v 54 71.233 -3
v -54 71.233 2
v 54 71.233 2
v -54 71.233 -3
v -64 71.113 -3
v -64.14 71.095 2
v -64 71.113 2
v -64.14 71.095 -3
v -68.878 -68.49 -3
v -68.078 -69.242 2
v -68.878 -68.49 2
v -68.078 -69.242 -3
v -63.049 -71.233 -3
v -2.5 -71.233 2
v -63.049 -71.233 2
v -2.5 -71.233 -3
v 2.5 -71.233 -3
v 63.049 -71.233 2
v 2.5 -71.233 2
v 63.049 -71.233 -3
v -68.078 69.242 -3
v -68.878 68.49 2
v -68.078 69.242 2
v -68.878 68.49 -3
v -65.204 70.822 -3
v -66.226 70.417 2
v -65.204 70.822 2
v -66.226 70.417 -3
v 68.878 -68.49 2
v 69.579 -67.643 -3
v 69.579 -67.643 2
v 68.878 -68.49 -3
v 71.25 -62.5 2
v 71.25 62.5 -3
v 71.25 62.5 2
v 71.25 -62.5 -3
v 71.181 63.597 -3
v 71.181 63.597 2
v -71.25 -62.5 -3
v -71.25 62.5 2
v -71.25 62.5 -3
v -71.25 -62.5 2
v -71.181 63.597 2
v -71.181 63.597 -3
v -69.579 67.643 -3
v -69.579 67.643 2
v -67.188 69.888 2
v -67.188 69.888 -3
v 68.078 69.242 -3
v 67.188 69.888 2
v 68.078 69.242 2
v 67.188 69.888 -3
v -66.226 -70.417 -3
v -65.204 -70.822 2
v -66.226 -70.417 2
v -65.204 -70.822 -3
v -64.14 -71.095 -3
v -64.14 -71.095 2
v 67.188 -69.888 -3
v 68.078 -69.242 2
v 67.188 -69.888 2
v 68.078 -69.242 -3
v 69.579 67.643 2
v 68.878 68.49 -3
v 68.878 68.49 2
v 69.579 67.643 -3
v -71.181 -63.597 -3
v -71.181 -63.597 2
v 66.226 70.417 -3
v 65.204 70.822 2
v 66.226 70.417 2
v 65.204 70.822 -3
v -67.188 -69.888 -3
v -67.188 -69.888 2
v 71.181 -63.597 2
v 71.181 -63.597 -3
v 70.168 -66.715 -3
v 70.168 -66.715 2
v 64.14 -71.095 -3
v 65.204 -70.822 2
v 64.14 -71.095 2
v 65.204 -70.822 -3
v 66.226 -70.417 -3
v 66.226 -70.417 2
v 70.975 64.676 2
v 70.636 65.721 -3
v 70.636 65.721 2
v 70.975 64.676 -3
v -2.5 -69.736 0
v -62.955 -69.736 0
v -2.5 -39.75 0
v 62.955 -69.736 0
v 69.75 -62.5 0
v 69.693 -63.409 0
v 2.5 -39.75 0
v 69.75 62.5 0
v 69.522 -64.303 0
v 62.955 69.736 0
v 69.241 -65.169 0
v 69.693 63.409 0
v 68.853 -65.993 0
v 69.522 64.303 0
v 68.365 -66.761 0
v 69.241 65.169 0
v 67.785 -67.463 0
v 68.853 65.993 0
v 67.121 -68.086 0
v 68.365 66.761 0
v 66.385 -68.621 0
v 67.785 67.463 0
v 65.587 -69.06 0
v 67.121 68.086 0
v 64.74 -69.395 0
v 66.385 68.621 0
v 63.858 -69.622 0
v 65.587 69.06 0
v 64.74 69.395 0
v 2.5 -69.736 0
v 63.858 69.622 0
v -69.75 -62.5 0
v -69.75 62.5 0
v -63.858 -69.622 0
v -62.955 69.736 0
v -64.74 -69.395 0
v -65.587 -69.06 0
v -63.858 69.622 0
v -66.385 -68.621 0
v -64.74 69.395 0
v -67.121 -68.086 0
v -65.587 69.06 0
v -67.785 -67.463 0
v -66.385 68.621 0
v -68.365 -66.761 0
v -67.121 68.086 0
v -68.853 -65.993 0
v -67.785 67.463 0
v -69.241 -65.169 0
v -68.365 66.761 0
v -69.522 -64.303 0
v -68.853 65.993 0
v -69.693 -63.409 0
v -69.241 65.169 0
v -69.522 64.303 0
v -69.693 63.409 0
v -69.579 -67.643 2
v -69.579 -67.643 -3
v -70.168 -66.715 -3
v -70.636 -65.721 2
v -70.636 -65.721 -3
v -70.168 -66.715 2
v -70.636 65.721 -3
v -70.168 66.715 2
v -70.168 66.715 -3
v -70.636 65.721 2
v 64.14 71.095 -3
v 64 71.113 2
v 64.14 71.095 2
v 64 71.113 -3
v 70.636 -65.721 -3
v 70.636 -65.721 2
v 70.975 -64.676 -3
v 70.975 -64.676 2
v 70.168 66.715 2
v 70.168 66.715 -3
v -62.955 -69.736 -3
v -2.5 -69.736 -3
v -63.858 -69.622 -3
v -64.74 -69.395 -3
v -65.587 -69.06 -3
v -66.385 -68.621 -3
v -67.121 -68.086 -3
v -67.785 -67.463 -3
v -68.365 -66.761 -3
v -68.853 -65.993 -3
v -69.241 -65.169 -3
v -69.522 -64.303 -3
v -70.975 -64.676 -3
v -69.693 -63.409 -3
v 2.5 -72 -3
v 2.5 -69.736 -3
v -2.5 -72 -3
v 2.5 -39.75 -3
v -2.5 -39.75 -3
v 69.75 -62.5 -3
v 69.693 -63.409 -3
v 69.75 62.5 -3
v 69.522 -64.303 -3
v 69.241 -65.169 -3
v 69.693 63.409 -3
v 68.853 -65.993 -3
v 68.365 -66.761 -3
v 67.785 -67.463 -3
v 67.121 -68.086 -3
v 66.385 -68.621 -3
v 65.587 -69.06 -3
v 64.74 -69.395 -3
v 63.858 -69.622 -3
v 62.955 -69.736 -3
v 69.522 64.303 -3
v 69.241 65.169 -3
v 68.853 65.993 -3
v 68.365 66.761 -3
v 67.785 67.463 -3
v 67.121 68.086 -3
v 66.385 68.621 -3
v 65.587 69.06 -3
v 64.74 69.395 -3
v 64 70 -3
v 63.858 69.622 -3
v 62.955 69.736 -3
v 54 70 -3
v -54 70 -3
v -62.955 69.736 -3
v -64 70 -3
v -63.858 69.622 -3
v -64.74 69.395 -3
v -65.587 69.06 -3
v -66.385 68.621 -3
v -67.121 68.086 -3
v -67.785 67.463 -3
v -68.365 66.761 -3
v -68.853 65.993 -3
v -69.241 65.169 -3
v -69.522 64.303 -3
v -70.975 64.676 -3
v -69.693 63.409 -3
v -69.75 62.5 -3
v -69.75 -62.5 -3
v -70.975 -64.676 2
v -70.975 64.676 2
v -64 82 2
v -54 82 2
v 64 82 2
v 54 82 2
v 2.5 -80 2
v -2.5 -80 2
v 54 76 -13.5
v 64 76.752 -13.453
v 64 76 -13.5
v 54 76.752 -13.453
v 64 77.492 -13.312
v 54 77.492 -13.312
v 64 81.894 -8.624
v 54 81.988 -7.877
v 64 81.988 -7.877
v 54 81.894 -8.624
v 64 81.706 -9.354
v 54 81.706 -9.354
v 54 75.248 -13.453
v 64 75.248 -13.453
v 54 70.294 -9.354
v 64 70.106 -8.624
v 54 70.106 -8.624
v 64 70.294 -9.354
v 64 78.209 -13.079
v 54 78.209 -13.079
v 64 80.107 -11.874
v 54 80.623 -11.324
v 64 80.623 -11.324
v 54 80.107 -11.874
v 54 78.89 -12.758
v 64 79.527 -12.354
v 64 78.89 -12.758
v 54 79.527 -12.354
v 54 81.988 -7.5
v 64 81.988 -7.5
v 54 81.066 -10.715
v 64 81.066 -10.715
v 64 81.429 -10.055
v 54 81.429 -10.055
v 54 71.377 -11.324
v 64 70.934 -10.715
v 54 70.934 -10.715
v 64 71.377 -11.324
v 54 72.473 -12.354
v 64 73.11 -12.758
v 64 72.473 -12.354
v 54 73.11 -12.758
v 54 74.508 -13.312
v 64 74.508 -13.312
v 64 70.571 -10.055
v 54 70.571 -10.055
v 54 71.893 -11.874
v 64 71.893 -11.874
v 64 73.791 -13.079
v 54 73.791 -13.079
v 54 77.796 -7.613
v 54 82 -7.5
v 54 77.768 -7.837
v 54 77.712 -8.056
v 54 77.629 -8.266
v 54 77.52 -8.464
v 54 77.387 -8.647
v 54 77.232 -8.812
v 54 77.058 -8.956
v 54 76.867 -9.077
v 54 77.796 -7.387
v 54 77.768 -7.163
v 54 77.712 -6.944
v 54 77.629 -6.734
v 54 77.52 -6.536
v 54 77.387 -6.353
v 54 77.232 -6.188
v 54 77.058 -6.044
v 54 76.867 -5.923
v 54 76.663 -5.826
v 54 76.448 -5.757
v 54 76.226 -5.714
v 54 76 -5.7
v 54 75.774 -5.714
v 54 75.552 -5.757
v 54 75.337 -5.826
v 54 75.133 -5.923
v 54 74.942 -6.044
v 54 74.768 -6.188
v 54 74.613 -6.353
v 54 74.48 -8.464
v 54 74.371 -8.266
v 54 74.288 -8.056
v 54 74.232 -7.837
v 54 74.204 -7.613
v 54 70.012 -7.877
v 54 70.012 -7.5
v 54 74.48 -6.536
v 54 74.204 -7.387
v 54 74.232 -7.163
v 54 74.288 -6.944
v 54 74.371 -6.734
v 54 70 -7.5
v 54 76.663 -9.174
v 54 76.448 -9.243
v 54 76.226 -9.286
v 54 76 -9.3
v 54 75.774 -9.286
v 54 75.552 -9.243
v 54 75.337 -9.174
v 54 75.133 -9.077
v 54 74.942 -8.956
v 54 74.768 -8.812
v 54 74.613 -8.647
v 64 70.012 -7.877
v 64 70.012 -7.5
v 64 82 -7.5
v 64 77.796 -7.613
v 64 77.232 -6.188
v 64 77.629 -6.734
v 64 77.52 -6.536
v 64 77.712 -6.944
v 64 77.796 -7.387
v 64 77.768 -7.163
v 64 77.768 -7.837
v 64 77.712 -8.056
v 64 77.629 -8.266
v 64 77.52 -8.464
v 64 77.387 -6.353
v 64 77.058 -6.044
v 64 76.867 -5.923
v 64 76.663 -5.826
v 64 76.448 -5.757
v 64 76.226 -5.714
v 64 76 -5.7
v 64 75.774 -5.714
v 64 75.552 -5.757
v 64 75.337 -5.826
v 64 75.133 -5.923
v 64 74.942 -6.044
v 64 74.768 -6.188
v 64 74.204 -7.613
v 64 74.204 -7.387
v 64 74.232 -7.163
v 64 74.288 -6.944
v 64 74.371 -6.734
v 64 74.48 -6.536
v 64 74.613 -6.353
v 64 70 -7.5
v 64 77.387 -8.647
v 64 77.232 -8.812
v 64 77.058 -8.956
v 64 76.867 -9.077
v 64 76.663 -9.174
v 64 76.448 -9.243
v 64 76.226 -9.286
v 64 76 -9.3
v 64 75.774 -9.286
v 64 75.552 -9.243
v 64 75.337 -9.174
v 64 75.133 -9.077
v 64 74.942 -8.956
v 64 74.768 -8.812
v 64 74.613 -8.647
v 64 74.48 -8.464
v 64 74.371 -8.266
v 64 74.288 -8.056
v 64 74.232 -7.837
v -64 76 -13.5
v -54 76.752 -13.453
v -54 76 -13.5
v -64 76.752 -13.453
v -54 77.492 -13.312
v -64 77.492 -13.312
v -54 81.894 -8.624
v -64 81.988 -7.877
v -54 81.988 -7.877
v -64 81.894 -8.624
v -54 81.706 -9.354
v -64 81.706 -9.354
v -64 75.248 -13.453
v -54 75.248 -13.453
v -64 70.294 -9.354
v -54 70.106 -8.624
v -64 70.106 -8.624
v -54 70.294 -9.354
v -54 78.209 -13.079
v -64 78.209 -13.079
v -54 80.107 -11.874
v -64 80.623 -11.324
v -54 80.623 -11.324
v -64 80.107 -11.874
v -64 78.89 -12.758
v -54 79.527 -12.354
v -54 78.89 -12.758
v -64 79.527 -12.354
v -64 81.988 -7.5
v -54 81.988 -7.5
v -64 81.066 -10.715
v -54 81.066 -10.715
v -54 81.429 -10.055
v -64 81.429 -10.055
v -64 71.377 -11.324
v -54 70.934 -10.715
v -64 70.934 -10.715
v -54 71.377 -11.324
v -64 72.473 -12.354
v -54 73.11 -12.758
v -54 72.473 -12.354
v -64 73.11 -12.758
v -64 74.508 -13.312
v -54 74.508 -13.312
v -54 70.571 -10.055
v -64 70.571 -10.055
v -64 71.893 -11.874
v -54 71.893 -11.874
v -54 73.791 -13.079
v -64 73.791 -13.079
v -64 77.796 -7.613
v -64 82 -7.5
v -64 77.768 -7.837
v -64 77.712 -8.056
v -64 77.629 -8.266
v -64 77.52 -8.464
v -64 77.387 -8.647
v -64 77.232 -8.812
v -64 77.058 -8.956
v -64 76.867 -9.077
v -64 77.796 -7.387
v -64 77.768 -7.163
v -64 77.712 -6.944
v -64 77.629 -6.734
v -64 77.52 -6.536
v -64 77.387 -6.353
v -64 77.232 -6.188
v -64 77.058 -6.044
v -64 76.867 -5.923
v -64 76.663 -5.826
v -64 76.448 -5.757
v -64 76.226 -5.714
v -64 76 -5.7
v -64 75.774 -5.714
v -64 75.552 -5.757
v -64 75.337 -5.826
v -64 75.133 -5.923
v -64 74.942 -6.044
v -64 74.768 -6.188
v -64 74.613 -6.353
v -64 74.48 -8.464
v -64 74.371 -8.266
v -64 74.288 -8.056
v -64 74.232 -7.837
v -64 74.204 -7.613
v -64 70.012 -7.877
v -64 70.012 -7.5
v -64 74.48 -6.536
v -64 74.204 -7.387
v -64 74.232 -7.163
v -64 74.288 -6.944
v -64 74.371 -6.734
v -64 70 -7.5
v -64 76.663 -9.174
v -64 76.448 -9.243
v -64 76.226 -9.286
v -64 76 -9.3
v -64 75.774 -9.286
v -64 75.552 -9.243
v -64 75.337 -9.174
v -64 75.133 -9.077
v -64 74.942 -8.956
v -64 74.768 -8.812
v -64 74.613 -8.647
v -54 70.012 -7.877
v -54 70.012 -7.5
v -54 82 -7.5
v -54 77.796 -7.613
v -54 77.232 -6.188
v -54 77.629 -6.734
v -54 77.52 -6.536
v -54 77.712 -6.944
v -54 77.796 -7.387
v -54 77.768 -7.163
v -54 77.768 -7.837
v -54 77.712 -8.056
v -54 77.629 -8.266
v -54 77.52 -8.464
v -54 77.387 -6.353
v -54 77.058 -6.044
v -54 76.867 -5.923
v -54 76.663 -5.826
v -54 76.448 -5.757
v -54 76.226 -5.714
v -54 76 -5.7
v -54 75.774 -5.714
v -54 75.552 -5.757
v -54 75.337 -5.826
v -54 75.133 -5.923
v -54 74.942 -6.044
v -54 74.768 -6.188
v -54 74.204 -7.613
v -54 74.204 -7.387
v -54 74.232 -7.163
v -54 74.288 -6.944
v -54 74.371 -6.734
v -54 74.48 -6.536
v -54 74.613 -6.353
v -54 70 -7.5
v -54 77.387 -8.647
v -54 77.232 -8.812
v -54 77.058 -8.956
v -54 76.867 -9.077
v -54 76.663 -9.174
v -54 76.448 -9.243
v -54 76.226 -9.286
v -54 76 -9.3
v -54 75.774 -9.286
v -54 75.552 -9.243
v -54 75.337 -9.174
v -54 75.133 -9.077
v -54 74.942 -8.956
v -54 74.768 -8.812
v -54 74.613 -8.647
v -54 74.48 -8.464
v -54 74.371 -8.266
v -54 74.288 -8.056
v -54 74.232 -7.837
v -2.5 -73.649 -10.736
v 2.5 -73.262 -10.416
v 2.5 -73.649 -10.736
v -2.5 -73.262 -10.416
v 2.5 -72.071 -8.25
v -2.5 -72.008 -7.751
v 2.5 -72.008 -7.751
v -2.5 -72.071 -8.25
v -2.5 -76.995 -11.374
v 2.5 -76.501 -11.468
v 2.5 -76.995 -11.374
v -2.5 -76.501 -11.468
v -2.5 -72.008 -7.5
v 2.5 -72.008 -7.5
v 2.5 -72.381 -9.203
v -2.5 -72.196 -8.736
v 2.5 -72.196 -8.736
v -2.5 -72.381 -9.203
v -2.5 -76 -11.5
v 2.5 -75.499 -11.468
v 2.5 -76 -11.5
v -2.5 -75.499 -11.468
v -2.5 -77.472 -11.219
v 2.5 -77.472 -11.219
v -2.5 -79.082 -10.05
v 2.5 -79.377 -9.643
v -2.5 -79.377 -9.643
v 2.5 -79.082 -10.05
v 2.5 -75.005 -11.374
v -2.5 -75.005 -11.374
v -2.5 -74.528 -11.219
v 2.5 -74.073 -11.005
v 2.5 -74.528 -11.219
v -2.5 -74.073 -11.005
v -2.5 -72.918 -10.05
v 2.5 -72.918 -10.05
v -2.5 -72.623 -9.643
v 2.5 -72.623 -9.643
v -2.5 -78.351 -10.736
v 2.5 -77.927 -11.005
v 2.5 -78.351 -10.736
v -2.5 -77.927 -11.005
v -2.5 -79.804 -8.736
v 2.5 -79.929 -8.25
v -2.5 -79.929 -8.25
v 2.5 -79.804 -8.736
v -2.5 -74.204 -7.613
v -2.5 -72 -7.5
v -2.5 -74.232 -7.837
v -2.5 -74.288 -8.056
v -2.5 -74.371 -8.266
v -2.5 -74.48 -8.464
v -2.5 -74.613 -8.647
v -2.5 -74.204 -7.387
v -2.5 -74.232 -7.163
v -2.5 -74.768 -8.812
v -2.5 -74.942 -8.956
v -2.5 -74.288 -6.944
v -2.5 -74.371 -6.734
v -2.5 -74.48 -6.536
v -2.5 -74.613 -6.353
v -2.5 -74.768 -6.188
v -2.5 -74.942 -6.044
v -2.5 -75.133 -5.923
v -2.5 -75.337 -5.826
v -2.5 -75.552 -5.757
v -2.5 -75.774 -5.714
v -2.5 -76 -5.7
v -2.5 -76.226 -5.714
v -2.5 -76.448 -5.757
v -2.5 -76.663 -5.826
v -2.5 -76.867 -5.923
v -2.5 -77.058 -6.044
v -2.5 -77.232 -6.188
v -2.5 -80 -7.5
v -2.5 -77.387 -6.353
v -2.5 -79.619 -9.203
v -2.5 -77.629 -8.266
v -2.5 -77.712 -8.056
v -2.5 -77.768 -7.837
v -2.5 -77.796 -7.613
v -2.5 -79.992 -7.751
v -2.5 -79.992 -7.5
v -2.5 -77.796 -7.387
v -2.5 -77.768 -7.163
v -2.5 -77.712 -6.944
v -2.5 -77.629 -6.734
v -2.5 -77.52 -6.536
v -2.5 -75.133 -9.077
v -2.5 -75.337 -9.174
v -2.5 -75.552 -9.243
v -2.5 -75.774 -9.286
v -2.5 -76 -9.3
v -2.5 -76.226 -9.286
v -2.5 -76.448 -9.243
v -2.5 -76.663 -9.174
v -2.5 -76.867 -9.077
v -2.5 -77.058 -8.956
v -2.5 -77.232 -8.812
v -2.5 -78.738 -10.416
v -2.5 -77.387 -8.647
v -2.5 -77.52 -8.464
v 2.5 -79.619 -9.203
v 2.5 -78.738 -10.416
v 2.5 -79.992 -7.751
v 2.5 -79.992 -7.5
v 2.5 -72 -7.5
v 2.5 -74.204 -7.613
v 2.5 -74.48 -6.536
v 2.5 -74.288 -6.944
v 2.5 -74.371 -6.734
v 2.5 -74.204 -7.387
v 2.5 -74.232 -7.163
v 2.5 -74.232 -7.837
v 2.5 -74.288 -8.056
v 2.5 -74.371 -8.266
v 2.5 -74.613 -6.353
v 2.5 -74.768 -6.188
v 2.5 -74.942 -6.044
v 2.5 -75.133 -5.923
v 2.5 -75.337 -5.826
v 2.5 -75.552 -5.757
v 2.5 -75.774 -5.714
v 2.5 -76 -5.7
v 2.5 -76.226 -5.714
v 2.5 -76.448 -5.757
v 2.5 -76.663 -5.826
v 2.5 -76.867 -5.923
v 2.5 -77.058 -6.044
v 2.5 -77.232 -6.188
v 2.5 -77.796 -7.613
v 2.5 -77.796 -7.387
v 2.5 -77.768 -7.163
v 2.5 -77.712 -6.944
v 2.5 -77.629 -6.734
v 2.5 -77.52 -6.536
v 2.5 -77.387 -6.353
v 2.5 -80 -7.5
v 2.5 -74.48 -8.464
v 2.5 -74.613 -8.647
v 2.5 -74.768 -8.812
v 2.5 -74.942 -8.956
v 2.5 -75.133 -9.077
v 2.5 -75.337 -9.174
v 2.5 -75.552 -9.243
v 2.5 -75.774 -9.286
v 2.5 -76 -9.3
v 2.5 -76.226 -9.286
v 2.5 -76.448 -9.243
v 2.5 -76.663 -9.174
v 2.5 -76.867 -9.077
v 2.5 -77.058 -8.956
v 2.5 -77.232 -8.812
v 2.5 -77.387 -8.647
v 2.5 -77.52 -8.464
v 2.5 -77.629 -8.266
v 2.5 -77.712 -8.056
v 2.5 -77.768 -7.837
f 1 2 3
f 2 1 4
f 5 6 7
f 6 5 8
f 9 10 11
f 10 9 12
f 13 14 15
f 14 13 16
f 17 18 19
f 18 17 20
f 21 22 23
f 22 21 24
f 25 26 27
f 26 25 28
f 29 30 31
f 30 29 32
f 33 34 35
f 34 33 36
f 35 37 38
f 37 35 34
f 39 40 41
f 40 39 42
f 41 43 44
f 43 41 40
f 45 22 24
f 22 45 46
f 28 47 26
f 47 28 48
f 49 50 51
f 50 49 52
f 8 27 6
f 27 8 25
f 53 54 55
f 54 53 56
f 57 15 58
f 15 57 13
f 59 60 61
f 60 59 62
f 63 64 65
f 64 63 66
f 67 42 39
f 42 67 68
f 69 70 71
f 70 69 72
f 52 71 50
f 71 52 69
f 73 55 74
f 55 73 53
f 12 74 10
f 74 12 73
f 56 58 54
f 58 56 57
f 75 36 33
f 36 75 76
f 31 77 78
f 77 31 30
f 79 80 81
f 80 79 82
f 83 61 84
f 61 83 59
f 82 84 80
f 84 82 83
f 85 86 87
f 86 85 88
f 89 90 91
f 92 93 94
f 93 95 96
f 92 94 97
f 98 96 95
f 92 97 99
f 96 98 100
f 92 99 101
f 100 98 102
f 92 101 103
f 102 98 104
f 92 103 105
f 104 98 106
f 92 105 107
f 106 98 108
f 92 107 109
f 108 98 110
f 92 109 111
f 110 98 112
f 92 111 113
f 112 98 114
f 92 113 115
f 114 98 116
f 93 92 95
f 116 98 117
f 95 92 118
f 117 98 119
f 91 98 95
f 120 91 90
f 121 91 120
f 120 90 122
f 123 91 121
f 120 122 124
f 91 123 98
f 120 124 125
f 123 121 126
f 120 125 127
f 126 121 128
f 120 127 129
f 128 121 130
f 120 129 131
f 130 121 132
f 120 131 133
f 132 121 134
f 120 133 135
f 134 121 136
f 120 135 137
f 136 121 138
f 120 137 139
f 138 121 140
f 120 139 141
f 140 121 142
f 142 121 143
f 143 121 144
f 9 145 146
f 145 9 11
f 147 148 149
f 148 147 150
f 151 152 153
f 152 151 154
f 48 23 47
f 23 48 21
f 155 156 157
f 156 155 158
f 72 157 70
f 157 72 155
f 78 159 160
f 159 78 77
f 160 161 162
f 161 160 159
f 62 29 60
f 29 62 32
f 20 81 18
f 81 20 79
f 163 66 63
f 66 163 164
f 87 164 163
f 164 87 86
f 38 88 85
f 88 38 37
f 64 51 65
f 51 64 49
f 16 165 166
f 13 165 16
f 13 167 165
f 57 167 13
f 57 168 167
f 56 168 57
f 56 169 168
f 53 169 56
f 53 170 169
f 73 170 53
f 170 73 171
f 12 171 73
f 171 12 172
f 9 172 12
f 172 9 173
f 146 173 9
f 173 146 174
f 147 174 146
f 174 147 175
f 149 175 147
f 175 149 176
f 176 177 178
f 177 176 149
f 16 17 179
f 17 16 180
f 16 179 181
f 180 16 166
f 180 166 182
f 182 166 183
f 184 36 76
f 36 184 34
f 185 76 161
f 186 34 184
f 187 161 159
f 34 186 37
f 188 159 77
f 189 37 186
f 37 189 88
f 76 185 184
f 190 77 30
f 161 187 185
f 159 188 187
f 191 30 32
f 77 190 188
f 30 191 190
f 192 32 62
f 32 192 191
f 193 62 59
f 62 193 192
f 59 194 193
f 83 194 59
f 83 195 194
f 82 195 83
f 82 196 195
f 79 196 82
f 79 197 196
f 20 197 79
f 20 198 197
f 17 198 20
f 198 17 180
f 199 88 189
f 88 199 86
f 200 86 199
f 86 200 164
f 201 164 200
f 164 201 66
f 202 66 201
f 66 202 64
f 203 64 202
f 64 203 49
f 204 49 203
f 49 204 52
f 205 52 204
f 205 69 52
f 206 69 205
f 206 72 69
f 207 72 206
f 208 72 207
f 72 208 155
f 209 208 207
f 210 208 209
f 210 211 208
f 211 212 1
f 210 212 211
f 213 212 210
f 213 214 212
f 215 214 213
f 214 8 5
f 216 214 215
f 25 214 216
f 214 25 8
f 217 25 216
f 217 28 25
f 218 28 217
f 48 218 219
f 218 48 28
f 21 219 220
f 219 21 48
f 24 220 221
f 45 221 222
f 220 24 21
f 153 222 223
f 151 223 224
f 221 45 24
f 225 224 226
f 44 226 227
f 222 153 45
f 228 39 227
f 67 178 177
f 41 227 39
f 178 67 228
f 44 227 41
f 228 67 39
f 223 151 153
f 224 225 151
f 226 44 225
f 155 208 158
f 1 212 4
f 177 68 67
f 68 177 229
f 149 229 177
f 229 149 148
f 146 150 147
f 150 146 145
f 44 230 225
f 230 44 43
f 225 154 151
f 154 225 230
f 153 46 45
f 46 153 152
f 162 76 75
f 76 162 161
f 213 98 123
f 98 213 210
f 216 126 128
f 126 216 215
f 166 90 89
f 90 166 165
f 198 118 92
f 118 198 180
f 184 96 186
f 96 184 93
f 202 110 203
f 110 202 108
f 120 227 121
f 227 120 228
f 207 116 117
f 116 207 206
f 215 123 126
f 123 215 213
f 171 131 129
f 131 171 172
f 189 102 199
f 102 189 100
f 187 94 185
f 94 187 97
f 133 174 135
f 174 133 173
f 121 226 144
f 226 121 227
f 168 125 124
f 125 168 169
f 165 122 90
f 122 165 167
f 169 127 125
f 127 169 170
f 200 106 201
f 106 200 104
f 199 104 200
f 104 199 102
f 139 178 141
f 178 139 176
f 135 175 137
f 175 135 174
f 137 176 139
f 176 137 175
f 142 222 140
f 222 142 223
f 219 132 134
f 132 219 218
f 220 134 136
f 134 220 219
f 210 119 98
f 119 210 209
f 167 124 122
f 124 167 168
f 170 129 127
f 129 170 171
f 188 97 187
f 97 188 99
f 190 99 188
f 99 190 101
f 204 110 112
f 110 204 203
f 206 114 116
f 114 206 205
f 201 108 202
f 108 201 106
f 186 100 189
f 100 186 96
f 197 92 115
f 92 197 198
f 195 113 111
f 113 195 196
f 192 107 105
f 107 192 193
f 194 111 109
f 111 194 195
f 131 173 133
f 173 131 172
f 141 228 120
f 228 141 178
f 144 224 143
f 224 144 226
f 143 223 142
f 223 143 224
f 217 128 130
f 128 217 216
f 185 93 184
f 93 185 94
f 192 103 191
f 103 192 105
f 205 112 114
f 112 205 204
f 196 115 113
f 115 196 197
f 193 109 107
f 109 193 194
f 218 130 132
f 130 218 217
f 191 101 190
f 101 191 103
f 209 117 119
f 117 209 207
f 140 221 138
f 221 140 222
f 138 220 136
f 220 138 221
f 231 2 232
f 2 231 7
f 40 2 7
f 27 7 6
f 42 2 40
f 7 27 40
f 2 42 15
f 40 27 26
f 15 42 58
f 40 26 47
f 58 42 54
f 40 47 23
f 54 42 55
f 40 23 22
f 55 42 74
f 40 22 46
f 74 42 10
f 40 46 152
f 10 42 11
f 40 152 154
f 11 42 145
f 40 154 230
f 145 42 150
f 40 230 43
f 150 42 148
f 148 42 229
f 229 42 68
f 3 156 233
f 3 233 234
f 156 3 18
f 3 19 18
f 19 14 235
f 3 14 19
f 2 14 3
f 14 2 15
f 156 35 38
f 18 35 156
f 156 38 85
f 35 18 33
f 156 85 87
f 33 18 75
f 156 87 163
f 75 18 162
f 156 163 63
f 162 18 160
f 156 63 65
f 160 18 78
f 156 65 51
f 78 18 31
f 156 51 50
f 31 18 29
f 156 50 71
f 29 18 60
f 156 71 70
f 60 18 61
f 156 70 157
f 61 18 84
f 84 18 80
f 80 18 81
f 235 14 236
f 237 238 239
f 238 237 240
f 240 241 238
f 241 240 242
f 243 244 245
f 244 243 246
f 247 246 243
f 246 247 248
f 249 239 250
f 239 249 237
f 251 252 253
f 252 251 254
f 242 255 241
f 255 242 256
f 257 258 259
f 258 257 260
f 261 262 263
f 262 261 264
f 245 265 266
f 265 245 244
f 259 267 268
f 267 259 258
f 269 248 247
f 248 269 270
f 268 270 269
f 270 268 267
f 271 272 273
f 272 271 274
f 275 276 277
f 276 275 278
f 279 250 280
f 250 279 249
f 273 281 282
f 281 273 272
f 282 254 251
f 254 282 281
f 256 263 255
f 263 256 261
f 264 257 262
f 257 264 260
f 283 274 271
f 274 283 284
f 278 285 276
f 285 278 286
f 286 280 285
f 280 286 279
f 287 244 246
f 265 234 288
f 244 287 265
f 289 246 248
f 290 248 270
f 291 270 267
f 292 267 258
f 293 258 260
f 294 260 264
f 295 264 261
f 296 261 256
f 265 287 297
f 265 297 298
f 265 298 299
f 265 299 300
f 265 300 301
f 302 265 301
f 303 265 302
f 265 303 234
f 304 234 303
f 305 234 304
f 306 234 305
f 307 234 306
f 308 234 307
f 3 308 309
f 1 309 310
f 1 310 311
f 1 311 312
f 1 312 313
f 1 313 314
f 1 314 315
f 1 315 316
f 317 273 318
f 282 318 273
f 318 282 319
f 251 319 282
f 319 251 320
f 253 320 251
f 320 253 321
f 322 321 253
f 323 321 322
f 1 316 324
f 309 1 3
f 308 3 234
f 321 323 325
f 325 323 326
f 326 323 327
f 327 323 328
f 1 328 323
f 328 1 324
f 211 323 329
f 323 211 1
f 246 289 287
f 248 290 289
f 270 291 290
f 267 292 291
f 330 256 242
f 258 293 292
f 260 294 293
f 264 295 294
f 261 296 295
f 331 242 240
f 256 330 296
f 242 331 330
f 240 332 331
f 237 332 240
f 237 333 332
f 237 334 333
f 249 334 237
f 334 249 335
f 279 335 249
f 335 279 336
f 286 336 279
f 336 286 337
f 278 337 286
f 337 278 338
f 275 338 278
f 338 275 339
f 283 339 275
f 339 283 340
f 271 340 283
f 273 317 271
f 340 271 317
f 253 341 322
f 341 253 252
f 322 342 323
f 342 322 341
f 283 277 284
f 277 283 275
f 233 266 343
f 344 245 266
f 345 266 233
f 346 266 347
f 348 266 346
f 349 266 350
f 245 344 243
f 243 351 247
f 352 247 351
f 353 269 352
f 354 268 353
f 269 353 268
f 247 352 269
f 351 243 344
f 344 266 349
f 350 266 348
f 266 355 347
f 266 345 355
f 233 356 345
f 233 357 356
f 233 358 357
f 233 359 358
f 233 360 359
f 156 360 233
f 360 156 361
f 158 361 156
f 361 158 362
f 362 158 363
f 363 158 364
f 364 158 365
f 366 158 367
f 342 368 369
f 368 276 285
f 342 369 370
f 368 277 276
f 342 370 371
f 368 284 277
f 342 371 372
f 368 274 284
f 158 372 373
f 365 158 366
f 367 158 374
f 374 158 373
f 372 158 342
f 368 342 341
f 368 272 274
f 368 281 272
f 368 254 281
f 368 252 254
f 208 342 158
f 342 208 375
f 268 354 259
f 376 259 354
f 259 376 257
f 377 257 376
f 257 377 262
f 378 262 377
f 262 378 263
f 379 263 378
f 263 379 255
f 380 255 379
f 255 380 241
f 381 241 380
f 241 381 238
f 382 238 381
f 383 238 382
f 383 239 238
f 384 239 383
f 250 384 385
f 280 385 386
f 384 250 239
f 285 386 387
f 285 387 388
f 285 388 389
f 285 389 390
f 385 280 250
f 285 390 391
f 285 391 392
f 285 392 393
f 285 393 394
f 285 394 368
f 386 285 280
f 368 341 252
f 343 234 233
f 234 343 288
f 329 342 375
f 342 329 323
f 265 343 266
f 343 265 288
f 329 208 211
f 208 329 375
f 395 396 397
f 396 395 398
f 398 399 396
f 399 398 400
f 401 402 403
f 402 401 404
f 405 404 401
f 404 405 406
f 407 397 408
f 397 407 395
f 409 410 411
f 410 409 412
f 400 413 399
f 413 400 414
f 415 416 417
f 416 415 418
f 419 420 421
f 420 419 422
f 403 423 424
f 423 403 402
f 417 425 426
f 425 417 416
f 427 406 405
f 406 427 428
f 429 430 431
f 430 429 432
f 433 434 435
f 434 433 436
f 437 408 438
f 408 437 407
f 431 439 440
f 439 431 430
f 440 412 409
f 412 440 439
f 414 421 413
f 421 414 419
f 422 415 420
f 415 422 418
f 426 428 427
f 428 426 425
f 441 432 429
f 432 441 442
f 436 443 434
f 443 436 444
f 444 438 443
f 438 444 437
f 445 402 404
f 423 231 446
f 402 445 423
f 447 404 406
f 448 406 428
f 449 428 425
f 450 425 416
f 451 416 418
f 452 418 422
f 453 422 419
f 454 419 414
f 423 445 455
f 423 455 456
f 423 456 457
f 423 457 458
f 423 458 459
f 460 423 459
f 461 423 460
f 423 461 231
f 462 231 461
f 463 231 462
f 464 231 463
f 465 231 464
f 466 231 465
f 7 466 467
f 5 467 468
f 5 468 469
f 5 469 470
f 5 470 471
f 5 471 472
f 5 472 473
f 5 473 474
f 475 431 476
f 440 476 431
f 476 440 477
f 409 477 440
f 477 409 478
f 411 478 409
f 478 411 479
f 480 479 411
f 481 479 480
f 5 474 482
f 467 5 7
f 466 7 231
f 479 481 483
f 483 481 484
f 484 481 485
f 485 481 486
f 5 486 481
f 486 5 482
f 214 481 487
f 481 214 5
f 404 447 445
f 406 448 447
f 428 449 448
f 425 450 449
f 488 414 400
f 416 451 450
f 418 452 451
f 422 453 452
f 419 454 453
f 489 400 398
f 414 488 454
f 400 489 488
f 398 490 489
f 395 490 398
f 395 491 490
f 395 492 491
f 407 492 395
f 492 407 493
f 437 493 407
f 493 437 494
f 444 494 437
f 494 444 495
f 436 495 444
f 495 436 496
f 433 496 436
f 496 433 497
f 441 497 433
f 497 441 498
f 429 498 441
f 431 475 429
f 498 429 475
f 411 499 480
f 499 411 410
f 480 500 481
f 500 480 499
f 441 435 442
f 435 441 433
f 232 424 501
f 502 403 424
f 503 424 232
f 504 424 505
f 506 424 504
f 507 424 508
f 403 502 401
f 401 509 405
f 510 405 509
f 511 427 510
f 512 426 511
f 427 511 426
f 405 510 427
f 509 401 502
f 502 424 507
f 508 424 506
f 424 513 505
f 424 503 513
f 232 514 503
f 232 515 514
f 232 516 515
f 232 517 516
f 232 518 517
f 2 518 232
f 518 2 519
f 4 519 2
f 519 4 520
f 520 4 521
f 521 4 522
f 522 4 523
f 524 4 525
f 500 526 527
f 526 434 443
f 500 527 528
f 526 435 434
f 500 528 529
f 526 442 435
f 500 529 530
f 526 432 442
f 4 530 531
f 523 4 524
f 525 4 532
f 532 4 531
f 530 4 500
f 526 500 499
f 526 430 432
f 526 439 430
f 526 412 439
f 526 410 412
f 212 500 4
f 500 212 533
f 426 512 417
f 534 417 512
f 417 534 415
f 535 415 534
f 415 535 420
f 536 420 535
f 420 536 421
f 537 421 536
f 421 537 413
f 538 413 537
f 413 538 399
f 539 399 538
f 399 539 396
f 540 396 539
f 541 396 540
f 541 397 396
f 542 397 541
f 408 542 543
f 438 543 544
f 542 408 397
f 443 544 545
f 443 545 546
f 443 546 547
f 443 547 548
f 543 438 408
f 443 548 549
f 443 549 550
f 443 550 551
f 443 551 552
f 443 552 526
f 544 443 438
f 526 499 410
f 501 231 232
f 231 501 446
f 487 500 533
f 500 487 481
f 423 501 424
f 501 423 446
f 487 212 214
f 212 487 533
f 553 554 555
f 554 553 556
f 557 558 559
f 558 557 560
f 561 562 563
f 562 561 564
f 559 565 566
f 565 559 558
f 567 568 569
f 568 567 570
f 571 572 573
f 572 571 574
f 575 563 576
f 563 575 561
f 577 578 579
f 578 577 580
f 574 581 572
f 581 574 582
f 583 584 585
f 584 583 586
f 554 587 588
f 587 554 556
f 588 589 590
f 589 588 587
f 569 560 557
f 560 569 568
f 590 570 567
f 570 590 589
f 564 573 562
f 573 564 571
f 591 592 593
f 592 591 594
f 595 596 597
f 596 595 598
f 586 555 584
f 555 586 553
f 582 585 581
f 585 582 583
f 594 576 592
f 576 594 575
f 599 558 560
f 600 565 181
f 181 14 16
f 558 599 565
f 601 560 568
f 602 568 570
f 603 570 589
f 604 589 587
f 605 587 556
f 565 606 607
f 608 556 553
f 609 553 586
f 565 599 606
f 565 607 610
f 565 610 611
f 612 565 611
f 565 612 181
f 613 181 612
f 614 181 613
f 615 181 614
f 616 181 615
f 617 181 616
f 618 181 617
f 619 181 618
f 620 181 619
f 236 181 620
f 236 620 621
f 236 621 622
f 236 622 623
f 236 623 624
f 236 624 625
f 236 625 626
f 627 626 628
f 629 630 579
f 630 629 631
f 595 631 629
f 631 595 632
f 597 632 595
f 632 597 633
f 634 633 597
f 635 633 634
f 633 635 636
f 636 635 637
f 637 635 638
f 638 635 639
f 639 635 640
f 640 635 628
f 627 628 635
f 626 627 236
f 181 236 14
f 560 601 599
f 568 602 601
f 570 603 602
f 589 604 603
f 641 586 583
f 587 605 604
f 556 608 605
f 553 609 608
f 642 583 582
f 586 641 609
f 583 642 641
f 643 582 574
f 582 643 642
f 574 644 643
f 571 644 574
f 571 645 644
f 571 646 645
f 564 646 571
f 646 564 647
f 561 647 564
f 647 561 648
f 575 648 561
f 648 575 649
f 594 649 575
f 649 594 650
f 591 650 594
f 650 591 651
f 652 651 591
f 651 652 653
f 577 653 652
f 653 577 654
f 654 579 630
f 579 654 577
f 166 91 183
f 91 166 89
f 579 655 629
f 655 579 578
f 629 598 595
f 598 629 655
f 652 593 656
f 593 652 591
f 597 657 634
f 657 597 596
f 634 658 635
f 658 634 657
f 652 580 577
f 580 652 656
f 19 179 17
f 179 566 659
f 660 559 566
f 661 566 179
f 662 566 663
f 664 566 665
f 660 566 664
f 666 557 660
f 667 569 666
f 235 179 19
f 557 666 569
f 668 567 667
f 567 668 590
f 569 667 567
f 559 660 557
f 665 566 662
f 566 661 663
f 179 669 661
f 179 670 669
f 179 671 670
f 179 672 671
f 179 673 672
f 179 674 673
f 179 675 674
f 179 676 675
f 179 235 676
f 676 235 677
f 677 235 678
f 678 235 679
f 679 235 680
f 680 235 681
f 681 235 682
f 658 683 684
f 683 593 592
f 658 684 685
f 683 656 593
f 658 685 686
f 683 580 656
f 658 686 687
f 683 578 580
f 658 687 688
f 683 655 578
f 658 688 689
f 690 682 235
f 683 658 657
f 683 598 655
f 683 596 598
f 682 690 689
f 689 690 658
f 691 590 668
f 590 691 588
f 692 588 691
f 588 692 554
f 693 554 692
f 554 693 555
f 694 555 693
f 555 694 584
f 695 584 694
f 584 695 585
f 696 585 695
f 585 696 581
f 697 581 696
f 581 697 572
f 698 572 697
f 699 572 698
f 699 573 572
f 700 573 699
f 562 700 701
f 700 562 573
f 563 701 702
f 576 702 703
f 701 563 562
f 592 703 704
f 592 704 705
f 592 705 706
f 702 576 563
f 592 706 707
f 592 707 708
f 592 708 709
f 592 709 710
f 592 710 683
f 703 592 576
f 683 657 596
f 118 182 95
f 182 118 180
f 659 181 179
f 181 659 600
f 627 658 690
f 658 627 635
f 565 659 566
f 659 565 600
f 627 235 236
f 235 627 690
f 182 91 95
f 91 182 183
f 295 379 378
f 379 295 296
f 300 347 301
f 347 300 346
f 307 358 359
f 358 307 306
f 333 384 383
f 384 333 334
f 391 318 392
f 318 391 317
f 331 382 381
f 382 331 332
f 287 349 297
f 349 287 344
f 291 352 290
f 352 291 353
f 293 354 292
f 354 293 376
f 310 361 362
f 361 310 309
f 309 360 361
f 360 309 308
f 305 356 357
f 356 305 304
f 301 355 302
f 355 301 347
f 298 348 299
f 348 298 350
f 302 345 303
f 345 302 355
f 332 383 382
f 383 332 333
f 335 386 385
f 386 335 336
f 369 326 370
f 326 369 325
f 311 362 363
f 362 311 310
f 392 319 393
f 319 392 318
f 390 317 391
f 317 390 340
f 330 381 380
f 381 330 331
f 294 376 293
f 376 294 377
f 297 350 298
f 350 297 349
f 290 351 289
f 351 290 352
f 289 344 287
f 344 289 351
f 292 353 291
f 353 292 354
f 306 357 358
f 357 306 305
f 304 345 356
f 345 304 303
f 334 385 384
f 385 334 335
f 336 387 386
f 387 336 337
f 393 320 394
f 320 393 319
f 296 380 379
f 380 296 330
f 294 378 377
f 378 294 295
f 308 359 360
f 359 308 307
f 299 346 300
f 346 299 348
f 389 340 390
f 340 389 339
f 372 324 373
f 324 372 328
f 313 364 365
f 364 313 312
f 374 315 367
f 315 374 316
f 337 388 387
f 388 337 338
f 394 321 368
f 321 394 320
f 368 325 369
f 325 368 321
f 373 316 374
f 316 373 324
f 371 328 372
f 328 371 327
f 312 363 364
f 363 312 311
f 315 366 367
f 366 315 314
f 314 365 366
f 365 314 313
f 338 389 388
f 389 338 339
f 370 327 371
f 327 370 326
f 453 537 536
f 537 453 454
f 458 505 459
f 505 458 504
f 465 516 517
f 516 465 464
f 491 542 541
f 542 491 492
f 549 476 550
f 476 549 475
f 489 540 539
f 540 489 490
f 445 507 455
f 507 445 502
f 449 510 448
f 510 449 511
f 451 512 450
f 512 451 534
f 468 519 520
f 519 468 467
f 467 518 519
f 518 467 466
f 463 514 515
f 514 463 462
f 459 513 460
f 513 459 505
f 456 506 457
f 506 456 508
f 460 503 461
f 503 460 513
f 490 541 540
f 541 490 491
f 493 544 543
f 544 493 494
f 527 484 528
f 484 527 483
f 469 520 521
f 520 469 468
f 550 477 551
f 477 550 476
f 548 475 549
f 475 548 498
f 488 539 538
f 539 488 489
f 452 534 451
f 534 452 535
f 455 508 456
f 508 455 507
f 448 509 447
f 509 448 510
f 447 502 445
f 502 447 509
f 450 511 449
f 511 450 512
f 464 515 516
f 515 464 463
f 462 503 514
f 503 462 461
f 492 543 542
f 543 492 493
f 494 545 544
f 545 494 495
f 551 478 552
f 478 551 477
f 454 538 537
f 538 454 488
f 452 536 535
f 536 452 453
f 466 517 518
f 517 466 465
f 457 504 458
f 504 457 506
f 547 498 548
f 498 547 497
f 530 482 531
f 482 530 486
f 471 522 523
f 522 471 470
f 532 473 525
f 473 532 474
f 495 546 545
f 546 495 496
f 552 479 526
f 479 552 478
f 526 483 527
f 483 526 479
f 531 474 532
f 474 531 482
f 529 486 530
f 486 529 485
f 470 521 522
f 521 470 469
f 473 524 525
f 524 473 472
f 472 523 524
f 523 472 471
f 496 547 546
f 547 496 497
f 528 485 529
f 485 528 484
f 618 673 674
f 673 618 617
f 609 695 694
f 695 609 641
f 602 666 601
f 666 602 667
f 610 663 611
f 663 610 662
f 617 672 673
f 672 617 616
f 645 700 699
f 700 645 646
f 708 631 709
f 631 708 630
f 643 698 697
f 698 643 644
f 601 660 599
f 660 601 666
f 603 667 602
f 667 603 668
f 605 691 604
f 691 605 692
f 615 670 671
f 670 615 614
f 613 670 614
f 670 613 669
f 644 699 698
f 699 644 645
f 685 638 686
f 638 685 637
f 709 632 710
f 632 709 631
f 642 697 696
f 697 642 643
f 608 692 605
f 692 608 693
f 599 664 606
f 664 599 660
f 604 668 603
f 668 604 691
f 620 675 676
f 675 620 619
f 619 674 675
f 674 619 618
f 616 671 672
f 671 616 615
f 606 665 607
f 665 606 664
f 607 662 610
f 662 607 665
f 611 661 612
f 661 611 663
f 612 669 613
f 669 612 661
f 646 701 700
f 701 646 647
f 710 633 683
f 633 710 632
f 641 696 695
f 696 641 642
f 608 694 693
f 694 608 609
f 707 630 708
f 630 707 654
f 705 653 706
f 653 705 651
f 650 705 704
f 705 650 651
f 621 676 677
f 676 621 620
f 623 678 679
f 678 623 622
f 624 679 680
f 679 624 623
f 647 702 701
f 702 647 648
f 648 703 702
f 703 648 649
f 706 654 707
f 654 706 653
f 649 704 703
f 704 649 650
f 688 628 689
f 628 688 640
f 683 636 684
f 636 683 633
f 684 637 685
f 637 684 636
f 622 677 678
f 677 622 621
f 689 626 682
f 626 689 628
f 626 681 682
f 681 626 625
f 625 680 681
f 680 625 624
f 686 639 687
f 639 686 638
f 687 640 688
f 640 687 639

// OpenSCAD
$fn = 50;


difference() {
	union() {
		translate(v = [0, 0, -3]) {
			rotate(a = [0, 0, 0]) {
				difference() {
					union() {
						hull() {
							translate(v = [-62.5000000000, 62.5000000000, 0]) {
								cylinder(h = 3, r = 8.7500000000);
							}
							translate(v = [62.5000000000, 62.5000000000, 0]) {
								cylinder(h = 3, r = 8.7500000000);
							}
							translate(v = [-62.5000000000, -62.5000000000, 0]) {
								cylinder(h = 3, r = 8.7500000000);
							}
							translate(v = [62.5000000000, -62.5000000000, 0]) {
								cylinder(h = 3, r = 8.7500000000);
							}
						}
					}
					union() {
						hull() {
							translate(v = [-62.5000000000, 62.5000000000, 0]) {
								cylinder(h = 3, r = 7.2500000000);
							}
							translate(v = [62.5000000000, 62.5000000000, 0]) {
								cylinder(h = 3, r = 7.2500000000);
							}
							translate(v = [-62.5000000000, -62.5000000000, 0]) {
								cylinder(h = 3, r = 7.2500000000);
							}
							translate(v = [62.5000000000, -62.5000000000, 0]) {
								cylinder(h = 3, r = 7.2500000000);
							}
						}
					}
				}
			}
		}
		hull() {
			translate(v = [-62.5000000000, 62.5000000000, 0]) {
				cylinder(h = 2, r = 8.7500000000);
			}
			translate(v = [62.5000000000, 62.5000000000, 0]) {
				cylinder(h = 2, r = 8.7500000000);
			}
			translate(v = [-62.5000000000, -62.5000000000, 0]) {
				cylinder(h = 2, r = 8.7500000000);
			}
			translate(v = [62.5000000000, -62.5000000000, 0]) {
				cylinder(h = 2, r = 8.7500000000);
			}
		}
		translate(v = [54.0000000000, 76.0000000000, -7.5000000000]) {
			rotate(a = [0, 90, 0]) {
				cylinder(h = 10, r = 6.0000000000);
			}
		}
		translate(v = [54.0000000000, 70.0000000000, -7.5000000000]) {
			cube(size = [10, 12, 7.5000000000]);
		}
		translate(v = [54.0000000000, 53.5000000000, 0.0000000000]) {
			cube(size = [10, 28.5000000000, 2]);
		}
		translate(v = [-64.0000000000, 76.0000000000, -7.5000000000]) {
			rotate(a = [0, 90, 0]) {
				cylinder(h = 10, r = 6.0000000000);
			}
		}
		translate(v = [-64.0000000000, 70.0000000000, -7.5000000000]) {
			cube(size = [10, 12, 7.5000000000]);
		}
		translate(v = [-64.0000000000, 53.5000000000, 0.0000000000]) {
			cube(size = [10, 28.5000000000, 2]);
		}
		translate(v = [-2.5000000000, -76.0000000000, -7.5000000000]) {
			rotate(a = [0, 90, 0]) {
				cylinder(h = 5, r = 4.0000000000);
			}
		}
		translate(v = [-2.5000000000, -80.0000000000, -7.5000000000]) {
			cube(size = [5, 8, 7.5000000000]);
		}
		#translate(v = [-2.5000000000, -80.0000000000, -3.0000000000]) {
			cube(size = [5, 40.2500000000, 5]);
		}
	}
	union() {
		translate(v = [54.0000000000, 76.0000000000, -7.5000000000]) {
			rotate(a = [0, 90, 0]) {
				cylinder(h = 10, r = 1.8000000000);
			}
		}
		translate(v = [-64.0000000000, 76.0000000000, -7.5000000000]) {
			rotate(a = [0, 90, 0]) {
				cylinder(h = 10, r = 1.8000000000);
			}
		}
		translate(v = [-5.0000000000, -76.0000000000, -7.5000000000]) {
			rotate(a = [0, 90, 0]) {
				cylinder(h = 10, r = 1.8000000000);
			}
		}
	}
}
